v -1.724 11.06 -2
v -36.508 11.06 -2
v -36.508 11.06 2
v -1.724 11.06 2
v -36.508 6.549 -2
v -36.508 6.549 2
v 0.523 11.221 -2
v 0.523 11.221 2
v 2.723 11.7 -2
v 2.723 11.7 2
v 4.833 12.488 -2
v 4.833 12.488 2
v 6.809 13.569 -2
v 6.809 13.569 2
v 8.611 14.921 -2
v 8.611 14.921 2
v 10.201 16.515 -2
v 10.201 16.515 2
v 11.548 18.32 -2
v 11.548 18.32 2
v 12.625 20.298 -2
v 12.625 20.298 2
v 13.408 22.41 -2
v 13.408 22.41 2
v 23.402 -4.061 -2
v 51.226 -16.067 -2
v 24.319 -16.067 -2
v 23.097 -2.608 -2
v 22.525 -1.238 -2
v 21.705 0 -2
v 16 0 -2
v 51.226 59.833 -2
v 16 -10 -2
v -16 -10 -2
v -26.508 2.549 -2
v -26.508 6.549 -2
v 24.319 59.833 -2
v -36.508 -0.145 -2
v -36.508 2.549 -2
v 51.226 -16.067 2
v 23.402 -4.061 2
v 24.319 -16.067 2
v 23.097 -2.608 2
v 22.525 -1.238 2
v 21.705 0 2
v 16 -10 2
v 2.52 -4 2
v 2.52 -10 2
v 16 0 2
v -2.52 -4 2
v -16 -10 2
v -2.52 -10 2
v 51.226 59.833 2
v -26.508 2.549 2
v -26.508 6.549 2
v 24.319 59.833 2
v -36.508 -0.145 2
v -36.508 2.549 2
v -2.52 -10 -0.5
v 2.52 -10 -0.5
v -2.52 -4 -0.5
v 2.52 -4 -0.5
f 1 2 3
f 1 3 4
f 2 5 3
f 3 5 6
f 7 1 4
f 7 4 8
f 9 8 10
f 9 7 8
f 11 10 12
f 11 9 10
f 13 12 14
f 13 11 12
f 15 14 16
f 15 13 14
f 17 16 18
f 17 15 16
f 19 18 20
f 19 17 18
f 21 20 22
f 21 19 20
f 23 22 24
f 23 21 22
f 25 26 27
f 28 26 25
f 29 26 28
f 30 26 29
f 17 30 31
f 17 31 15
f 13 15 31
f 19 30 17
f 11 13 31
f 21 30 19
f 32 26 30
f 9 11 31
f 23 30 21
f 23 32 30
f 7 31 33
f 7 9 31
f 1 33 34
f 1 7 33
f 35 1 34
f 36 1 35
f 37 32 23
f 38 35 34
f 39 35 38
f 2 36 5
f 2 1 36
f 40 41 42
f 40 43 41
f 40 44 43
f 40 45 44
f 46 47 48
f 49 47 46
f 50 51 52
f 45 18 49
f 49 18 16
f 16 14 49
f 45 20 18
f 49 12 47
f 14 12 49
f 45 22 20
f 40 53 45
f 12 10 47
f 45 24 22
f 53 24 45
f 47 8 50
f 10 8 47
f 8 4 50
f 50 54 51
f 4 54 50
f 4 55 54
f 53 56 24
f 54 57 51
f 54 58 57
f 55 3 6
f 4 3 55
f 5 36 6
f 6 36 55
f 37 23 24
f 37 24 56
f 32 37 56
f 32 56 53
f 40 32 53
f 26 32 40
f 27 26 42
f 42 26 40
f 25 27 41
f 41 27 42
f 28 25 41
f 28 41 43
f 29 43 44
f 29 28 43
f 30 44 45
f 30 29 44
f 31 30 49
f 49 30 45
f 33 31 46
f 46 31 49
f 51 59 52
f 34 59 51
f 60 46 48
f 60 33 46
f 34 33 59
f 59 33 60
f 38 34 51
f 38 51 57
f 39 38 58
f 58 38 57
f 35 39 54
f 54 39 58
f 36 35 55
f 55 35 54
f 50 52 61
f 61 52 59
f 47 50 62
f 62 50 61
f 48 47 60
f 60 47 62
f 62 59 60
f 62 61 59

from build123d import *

# Parameters (mm, degrees)
PAD_DEPTH    = 2
SKETCH_W     = 5.04
SKETCH_H     = 6
POCKET_DEPTH = 2.5


with BuildPart() as part:
    # CopySketch004 → Pad (new body, symmetric)
    with BuildSketch(Plane.XY):
        with BuildLine():
            Line((-36.508492, 11.060009), (-1.723702, 11.060009))
            ThreePointArc((-1.723702, 11.060009), (7.733856, 14.212769), (13.407871, 22.409771))
            Line((13.407871, 22.409771), (24.319128, 59.832547))
            Line((24.319128, 59.832547), (51.226102, 59.832547))
            Line((51.226102, 59.832547), (51.226102, -16.067453))
            Line((24.319128, -16.067453), (51.226102, -16.067453))
            Line((23.401691, -4.060687), (24.319128, -16.067453))
            ThreePointArc((23.401691, -4.060687), (22.843077, -1.909417), (21.705474, 0))
            Line((16, 0), (21.705474, 0))
            Line((16, -10), (16, 0))
            Line((-16, -10), (16, -10))
            Line((-16, -10), (-36.508492, -0.144815))
            Line((-36.508492, 2.549264), (-36.508492, -0.144815))
            Line((-26.508492, 2.549264), (-36.508492, 2.549264))
            Line((-26.508492, 6.549264), (-26.508492, 2.549264))
            Line((-36.508492, 6.549264), (-26.508492, 6.549264))
            Line((-36.508492, 11.060009), (-36.508492, 6.549264))
        make_face()
    extrude(amount=PAD_DEPTH, both=True)

    # Sketch (on Face19 of Pad) → Pocket (cut)
    with BuildSketch(Plane.XY.offset(2)):
        with Locations((0, -7)):
            Rectangle(SKETCH_W, SKETCH_H)
    extrude(amount=-POCKET_DEPTH, mode=Mode.SUBTRACT)


solid = part.part
